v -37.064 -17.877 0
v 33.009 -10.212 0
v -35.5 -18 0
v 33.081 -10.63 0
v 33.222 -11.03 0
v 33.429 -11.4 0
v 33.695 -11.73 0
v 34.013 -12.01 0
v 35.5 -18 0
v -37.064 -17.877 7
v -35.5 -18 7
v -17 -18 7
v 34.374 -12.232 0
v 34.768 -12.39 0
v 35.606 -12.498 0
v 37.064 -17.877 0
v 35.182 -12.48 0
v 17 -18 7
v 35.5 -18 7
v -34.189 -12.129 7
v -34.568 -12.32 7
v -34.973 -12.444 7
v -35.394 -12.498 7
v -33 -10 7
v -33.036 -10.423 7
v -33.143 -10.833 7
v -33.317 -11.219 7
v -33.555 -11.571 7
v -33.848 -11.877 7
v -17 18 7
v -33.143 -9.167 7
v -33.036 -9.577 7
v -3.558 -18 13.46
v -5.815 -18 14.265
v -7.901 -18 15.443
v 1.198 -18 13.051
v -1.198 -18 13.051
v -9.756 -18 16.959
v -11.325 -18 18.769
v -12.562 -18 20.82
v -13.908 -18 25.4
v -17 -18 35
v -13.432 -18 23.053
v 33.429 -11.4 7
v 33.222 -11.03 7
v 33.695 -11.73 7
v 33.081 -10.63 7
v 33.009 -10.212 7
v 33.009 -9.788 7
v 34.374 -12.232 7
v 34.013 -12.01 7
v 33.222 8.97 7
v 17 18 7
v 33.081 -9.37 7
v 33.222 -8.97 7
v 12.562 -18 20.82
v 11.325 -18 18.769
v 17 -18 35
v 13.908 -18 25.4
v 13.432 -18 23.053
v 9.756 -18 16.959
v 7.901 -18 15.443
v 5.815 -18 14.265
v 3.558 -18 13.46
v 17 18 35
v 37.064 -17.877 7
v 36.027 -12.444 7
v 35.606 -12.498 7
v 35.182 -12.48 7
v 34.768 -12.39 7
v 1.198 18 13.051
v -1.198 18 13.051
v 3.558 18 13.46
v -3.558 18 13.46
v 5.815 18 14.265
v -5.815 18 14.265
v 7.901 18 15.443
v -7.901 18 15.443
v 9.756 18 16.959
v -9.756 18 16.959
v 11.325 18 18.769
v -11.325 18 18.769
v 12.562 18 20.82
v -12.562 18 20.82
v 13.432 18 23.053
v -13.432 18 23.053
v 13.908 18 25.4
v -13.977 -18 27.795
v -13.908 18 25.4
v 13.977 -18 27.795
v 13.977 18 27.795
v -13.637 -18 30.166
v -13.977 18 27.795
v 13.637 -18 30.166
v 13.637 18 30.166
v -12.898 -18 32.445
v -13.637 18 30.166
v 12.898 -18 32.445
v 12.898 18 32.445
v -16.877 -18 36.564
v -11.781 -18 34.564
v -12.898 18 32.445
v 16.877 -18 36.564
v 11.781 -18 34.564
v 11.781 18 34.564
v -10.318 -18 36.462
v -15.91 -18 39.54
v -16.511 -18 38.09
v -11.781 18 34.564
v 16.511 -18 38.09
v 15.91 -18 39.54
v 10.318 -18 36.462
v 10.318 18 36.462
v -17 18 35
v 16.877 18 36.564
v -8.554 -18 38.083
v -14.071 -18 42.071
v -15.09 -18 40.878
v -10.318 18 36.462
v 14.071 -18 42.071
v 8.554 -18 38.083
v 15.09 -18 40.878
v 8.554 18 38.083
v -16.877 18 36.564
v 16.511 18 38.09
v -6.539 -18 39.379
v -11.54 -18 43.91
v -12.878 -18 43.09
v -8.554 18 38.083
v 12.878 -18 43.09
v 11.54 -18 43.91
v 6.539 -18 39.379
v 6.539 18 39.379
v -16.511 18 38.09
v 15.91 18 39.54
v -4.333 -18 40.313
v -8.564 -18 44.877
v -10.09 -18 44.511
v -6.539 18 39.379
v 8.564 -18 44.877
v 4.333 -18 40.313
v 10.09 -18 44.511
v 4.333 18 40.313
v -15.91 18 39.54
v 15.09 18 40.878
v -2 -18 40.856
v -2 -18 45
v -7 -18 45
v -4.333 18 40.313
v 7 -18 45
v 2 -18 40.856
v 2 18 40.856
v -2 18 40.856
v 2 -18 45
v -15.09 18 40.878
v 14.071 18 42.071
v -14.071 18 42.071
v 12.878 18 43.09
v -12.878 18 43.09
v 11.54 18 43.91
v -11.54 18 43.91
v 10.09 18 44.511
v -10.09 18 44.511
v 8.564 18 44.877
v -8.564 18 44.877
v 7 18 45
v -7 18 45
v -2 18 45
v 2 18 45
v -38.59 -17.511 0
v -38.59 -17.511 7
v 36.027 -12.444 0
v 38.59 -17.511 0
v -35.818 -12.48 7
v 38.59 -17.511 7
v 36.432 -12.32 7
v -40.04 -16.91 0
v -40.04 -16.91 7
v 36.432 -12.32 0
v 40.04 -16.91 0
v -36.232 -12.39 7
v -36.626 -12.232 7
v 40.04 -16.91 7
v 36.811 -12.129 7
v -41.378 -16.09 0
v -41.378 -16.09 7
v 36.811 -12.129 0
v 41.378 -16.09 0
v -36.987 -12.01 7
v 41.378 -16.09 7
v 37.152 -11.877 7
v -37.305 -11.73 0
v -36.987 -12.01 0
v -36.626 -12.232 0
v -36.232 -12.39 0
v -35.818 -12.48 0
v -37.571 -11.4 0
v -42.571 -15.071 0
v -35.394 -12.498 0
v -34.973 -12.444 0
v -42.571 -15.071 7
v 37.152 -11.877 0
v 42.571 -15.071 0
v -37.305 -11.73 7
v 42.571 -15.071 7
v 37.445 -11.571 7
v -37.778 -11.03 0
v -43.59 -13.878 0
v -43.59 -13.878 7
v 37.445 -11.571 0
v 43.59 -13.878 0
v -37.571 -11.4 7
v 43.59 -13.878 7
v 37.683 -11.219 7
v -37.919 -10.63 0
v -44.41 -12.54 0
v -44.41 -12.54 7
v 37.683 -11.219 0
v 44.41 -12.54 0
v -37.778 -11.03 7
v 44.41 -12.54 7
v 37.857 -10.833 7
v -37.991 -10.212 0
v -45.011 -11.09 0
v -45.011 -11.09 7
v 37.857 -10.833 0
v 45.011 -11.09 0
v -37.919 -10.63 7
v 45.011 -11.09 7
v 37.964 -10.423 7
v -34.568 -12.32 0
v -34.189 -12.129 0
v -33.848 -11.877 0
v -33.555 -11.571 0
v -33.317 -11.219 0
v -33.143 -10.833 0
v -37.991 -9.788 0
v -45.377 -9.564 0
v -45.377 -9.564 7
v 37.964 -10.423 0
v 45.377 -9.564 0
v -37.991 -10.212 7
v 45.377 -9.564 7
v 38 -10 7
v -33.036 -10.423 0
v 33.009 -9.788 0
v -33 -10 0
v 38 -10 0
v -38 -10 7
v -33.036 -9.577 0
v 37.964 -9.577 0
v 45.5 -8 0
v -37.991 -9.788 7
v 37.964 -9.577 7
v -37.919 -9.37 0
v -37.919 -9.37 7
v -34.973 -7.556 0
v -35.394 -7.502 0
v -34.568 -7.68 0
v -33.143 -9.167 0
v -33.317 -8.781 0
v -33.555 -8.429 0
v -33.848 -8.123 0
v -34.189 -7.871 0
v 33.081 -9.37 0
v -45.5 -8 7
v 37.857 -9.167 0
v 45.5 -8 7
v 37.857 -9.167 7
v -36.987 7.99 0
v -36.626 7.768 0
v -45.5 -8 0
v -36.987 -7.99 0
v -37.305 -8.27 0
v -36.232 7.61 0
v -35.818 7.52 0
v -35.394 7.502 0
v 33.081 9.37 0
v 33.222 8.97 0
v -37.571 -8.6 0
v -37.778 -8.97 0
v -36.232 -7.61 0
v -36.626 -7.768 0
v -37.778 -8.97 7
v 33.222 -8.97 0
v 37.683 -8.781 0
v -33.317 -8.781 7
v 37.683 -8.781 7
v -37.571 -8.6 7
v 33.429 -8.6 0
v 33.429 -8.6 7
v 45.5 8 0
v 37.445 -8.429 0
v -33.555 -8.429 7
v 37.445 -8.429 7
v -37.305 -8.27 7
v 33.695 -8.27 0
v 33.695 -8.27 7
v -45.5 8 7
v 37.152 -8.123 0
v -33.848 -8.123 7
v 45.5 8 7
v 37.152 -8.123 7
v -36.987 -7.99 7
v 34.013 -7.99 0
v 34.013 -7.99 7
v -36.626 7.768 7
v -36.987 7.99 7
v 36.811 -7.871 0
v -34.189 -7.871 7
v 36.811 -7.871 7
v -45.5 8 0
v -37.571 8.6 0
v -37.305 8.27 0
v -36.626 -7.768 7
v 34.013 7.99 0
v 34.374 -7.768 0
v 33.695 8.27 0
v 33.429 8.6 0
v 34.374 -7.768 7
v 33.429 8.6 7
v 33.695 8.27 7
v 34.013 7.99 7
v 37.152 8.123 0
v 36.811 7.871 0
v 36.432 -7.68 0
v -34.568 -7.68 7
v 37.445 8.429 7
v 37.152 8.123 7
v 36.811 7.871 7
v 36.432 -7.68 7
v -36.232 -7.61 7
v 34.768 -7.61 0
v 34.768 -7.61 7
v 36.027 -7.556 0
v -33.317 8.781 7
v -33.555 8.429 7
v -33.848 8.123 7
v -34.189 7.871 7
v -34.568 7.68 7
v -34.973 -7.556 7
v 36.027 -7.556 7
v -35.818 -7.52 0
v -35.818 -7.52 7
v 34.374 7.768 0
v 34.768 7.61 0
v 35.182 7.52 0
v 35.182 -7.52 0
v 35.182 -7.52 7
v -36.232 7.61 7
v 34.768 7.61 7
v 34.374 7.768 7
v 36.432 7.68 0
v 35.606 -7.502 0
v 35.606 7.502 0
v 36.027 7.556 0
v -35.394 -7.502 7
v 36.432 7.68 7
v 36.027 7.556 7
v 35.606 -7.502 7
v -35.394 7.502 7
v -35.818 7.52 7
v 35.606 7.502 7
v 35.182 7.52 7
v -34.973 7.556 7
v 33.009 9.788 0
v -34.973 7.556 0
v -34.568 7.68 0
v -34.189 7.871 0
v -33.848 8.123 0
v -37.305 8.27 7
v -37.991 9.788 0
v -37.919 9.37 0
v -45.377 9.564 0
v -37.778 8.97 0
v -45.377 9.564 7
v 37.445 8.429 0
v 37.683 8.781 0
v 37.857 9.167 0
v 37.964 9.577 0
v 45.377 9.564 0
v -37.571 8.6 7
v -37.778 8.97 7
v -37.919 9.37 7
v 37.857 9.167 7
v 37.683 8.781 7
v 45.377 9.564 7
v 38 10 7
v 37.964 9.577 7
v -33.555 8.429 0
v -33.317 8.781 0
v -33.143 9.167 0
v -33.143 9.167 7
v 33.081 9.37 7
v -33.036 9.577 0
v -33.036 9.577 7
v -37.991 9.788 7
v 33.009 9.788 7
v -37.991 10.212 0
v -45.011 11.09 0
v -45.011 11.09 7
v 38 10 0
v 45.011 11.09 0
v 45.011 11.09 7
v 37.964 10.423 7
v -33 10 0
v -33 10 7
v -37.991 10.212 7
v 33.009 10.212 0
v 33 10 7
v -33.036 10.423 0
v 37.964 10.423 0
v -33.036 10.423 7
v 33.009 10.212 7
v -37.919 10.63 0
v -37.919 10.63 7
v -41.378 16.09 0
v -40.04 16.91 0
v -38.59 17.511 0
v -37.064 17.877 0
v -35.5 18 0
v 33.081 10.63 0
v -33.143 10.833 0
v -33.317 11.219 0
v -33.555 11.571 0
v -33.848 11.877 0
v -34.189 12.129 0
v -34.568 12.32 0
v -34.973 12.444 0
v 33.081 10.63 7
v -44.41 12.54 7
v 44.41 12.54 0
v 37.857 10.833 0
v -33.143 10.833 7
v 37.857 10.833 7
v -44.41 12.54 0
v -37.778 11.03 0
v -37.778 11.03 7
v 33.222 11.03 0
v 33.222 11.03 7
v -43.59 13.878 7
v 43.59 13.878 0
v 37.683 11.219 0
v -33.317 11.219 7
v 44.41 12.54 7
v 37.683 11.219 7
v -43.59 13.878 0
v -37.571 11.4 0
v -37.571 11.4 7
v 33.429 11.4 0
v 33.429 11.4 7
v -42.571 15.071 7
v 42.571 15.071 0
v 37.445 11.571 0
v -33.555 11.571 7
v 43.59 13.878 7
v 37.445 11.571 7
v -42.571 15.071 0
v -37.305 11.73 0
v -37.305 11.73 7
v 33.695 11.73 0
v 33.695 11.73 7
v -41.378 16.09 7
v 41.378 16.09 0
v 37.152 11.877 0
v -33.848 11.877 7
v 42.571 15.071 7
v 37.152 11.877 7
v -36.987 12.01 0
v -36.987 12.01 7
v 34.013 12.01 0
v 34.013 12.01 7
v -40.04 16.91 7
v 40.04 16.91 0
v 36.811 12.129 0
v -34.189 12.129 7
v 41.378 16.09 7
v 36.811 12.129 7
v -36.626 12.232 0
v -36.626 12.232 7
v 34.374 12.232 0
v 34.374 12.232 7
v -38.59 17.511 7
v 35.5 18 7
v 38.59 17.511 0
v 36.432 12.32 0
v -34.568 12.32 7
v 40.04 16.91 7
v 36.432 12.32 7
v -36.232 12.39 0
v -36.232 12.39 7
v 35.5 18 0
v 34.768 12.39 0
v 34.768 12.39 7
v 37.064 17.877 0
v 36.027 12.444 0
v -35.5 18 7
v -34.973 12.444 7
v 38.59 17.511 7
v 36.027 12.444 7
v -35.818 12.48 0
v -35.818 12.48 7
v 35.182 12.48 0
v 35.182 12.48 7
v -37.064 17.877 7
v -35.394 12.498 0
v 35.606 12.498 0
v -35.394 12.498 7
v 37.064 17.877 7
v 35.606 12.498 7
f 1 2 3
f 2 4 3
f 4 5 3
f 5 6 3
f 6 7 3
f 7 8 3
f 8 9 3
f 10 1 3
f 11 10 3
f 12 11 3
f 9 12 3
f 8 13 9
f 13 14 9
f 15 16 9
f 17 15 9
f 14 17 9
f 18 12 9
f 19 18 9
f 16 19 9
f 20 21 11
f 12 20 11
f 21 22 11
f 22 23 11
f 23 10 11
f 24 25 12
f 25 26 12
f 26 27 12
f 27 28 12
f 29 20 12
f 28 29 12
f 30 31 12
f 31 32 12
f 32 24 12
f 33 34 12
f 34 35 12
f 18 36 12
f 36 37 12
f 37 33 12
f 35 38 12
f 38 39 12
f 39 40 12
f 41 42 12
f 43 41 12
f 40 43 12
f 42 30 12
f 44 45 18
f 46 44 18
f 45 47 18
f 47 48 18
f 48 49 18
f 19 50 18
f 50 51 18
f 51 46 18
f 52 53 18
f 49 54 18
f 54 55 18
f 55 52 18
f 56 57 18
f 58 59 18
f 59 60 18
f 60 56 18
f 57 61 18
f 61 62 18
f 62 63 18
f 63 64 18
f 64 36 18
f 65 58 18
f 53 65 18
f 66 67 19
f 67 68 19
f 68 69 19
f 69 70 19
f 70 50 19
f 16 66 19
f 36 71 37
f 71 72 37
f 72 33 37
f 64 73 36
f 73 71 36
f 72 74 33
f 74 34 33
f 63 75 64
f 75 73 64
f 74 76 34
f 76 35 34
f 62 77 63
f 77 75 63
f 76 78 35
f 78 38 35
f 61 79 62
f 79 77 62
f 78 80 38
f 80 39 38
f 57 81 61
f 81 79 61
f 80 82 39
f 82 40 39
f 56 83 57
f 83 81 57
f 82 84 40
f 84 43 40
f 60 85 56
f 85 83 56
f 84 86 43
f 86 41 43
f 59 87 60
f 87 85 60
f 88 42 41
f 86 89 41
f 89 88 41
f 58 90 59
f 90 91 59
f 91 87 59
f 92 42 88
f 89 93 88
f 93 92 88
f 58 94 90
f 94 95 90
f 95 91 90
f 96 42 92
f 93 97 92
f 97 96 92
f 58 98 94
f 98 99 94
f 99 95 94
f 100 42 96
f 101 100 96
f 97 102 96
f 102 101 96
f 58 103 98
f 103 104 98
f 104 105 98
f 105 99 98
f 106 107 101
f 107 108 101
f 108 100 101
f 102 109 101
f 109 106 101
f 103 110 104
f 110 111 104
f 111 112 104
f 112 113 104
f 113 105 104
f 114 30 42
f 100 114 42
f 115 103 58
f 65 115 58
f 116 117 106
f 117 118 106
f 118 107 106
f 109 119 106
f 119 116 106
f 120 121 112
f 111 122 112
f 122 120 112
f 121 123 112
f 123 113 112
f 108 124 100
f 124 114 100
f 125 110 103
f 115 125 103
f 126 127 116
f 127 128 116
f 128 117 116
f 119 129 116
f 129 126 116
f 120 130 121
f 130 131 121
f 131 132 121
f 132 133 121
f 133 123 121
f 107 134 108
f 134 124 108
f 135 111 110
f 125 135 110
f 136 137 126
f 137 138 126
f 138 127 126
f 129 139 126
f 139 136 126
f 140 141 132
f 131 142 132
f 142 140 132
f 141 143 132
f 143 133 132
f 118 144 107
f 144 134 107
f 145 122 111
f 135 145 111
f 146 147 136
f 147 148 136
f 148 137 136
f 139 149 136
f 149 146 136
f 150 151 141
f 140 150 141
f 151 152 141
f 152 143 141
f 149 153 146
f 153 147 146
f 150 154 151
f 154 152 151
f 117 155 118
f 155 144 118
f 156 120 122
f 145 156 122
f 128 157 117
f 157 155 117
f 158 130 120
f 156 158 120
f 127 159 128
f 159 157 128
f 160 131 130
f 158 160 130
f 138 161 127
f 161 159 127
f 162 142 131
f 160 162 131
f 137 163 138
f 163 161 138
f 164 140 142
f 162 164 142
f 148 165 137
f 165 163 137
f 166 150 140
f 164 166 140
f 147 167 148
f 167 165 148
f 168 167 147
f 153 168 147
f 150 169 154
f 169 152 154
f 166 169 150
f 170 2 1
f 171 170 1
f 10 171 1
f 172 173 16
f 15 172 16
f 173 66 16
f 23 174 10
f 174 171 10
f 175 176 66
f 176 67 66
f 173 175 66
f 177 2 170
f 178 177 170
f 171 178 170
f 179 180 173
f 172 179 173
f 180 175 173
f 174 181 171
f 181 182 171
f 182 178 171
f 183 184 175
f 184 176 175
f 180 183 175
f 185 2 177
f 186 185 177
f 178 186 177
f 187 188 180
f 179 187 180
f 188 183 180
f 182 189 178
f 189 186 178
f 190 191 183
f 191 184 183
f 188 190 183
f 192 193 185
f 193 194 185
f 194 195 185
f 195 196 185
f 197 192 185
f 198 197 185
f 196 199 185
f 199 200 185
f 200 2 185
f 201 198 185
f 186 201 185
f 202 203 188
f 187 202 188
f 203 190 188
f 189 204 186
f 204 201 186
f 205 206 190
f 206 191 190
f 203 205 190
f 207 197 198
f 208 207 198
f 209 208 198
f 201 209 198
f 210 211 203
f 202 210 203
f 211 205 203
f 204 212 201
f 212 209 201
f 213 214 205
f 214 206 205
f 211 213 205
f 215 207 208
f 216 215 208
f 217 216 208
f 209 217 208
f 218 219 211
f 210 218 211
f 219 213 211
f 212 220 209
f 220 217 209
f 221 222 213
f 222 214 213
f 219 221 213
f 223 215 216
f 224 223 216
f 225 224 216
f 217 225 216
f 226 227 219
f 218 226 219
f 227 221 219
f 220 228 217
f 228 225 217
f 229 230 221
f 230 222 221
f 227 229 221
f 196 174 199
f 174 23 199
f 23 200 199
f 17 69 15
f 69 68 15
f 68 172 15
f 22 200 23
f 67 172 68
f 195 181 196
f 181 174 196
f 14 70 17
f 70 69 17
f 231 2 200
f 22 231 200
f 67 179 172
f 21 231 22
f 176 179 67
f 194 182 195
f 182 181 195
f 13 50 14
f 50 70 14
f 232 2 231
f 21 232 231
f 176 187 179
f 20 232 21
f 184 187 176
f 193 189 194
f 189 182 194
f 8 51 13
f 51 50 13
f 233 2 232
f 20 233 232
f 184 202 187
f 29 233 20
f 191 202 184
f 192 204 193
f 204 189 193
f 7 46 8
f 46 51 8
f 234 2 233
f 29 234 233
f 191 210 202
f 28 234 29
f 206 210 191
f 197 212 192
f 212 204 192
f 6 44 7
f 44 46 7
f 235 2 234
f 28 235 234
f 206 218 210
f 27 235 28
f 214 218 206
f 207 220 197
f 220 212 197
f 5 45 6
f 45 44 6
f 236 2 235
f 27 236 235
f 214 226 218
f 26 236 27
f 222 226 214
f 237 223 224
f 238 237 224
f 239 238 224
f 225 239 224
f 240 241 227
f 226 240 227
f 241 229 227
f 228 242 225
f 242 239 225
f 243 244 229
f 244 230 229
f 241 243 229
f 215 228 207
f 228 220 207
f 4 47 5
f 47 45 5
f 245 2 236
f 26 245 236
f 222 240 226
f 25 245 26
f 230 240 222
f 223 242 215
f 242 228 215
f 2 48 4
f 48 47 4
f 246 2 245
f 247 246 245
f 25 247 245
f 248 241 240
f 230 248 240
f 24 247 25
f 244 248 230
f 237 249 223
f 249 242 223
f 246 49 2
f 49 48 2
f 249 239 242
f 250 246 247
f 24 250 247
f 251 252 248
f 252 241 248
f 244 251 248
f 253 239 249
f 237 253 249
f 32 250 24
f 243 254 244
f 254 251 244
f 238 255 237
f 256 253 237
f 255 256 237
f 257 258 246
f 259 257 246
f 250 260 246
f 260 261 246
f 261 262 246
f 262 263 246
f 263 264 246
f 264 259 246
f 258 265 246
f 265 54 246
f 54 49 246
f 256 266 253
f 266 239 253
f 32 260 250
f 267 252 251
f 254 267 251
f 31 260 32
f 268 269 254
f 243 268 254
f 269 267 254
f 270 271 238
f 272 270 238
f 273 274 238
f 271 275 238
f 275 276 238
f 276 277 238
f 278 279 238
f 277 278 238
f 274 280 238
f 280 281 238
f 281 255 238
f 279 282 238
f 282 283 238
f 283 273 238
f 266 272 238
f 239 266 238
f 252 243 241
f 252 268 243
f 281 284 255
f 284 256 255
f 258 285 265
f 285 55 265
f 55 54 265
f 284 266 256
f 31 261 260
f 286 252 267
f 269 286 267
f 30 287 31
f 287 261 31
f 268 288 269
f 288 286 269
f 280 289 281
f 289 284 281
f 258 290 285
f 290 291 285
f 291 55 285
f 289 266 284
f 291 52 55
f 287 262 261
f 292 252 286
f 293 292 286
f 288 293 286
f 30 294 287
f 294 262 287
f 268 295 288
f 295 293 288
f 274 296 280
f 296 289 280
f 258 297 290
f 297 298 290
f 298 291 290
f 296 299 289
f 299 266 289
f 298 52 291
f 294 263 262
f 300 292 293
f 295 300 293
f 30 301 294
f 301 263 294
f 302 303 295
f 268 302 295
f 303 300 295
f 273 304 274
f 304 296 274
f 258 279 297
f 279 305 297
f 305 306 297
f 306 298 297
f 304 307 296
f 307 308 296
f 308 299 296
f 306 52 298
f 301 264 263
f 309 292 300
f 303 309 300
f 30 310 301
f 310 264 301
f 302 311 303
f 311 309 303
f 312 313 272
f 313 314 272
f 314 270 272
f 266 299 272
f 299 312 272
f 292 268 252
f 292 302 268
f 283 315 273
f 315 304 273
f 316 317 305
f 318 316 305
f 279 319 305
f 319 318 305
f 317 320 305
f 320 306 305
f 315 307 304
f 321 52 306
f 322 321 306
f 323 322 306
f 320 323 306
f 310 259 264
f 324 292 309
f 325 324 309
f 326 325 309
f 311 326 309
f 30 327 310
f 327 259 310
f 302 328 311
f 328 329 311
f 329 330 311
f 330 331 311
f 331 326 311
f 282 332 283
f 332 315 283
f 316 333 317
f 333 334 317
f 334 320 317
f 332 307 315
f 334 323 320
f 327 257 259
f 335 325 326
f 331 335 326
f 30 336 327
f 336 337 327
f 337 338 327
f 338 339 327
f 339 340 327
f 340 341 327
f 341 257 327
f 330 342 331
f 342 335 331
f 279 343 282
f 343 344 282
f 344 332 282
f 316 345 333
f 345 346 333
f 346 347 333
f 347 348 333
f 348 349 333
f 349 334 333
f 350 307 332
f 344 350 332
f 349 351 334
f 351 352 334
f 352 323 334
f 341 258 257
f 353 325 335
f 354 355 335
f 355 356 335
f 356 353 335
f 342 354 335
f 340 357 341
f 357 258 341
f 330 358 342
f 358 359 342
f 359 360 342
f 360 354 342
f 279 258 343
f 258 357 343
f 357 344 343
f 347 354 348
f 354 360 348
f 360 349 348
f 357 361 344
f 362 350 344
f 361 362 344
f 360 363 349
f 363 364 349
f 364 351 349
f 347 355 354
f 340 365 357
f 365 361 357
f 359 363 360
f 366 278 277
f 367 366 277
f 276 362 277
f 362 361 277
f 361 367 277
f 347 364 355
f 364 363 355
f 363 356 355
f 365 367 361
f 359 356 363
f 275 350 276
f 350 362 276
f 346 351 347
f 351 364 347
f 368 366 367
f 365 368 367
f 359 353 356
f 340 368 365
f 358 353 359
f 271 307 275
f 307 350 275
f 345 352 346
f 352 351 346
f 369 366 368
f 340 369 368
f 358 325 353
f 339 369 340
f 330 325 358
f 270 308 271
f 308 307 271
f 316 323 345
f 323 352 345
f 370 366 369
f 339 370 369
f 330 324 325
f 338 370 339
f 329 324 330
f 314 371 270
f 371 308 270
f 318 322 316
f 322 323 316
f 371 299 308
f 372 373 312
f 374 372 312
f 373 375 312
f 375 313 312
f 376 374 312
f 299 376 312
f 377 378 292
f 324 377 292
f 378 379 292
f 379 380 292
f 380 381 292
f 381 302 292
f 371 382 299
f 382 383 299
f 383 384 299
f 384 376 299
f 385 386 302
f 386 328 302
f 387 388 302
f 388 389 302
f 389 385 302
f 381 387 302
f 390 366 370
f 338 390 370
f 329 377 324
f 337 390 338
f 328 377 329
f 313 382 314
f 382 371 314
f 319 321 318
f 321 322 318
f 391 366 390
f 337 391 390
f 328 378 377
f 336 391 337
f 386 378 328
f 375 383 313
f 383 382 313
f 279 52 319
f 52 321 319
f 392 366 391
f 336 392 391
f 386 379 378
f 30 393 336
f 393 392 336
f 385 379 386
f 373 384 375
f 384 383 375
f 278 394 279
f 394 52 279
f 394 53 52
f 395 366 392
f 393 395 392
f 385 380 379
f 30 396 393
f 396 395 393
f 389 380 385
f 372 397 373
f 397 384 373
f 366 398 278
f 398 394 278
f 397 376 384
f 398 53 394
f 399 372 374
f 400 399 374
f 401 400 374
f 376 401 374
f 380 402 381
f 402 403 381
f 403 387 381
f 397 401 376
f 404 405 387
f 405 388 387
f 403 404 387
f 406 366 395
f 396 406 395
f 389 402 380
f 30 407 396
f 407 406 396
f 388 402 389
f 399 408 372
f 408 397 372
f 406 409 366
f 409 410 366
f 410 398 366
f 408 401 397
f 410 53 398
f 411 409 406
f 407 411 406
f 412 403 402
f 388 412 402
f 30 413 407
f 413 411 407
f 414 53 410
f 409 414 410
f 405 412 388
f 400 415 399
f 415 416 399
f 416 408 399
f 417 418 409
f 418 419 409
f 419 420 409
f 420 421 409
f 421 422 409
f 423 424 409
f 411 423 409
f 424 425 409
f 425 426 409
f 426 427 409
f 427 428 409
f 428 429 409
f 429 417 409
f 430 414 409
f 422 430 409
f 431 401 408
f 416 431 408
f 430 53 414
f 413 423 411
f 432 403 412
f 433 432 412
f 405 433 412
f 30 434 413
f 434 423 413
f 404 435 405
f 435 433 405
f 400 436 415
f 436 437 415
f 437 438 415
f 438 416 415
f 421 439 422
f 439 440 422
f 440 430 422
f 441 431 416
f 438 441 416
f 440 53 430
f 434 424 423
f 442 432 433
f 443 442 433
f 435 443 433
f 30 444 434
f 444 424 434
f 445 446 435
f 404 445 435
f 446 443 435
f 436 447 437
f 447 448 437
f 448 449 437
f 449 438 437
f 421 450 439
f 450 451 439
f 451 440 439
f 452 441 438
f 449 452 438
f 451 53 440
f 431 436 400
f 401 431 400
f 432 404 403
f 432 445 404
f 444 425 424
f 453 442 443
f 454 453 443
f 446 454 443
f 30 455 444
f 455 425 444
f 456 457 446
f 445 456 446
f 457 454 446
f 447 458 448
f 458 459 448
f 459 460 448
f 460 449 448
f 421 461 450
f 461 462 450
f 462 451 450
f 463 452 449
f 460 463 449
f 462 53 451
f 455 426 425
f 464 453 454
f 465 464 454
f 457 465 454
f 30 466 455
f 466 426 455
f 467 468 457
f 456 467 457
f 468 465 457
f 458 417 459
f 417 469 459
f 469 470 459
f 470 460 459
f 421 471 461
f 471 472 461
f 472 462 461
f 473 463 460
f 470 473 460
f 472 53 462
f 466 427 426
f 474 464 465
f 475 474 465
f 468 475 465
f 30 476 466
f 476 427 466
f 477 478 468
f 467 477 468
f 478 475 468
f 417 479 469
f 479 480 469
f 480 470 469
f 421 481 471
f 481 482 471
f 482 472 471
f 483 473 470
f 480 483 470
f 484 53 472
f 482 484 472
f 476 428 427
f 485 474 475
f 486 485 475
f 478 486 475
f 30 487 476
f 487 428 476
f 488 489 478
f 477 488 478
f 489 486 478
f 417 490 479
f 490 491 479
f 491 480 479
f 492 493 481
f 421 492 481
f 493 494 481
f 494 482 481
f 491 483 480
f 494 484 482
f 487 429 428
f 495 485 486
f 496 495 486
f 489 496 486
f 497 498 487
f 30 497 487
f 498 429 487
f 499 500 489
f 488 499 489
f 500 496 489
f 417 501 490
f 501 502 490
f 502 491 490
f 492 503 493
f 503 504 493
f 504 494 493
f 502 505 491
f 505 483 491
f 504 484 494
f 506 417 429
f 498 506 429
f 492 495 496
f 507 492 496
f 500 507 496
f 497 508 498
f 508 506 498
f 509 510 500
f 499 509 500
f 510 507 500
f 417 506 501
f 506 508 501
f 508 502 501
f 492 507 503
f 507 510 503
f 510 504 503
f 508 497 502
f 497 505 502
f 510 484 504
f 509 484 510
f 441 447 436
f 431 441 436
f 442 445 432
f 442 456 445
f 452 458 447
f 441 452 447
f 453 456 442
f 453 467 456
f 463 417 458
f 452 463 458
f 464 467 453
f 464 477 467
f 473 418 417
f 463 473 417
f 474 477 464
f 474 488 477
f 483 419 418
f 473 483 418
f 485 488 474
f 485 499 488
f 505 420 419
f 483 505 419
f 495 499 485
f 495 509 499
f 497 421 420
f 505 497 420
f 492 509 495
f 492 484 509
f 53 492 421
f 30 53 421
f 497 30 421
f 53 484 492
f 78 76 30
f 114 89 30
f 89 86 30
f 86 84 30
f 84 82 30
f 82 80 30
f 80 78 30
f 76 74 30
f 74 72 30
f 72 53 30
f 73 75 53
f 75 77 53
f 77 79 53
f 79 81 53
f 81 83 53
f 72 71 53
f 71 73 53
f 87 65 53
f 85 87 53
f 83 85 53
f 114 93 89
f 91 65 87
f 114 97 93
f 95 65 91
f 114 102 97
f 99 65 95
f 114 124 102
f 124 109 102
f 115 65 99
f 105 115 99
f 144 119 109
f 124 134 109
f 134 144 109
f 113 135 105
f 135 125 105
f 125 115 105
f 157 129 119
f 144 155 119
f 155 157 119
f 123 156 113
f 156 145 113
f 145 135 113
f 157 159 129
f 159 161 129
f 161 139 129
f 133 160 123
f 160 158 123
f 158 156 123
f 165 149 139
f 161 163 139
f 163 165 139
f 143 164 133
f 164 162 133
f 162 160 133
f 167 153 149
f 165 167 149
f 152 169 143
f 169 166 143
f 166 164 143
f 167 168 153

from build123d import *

# Parameters (mm, degrees)
EXTRUDE_1_DEPTH     = 7
SKETCH_2_R          = 2.5
CUT_EXTRUDE_1_DEPTH = 10
SKETCH_3_W          = 34
SKETCH_3_H          = 36
EXTRUDE_2_DEPTH     = 38
SKETCH_6_R          = 14
CUT_EXTRUDE_2_DEPTH = 40
SKETCH_8_W          = 4
SKETCH_8_H          = 36
CUT_EXTRUDE_3_DEPTH = 10
FILLET_1_R          = 10


with BuildPart() as part:
    # 草圖1 → 填料-伸長1 (new body)
    with BuildSketch(Plane.XY):
        with BuildLine():
            Line((35.5, -18), (-35.5, -18))
            ThreePointArc((-35.5, -18), (-42.571067812, -15.071067812), (-45.5, -8))
            Line((-45.5, -8), (-45.5, 8))
            ThreePointArc((-45.5, 8), (-42.571067812, 15.071067812), (-35.5, 18))
            Line((-35.5, 18), (35.5, 18))
            ThreePointArc((35.5, 18), (42.571067812, 15.071067812), (45.5, 8))
            Line((45.5, 8), (45.5, -8))
            ThreePointArc((45.5, -8), (42.571067812, -15.071067812), (35.5, -18))
        make_face()
    extrude(amount=EXTRUDE_1_DEPTH)

    # 草圖2 → 除料-伸長1 (cut)
    with BuildSketch(Plane.XY.offset(7)):
        with Locations((-35.5, 10)):
            Circle(SKETCH_2_R)
        with Locations((35.5, 10)):
            Circle(SKETCH_2_R)
        with Locations((35.5, -10)):
            Circle(SKETCH_2_R)
        with Locations((-35.5, -10)):
            Circle(SKETCH_2_R)
    extrude(amount=-CUT_EXTRUDE_1_DEPTH, mode=Mode.SUBTRACT)

    # 草圖3 → 填料-伸長2 (add)
    with BuildSketch(Plane.XY.offset(7)):
        Rectangle(SKETCH_3_W, SKETCH_3_H)
    extrude(amount=EXTRUDE_2_DEPTH)

    # 草圖6 → 除料-伸長2 (cut)
    with BuildSketch(Plane(origin=(0, 18, 0), x_dir=(1, 0, 0), z_dir=(0, 1, 0))):
        with Locations(Location((0, -27, 0), (0, 0, 180))):
            Circle(SKETCH_6_R)
    extrude(amount=-CUT_EXTRUDE_2_DEPTH, mode=Mode.SUBTRACT)

    # 草圖8 → 除料-伸長3 (cut)
    with BuildSketch(Plane.XY.offset(45)):
        Rectangle(SKETCH_8_W, SKETCH_8_H)
    extrude(amount=-CUT_EXTRUDE_3_DEPTH, mode=Mode.SUBTRACT)

    # 圓角1
    fillet_1_edges = [part.edges().sort_by_distance(p)[0] for p in [
        (-17, 0, 45),
        (17, 0, 45),
    ]]
    fillet(fillet_1_edges, radius=FILLET_1_R)


solid = part.part
